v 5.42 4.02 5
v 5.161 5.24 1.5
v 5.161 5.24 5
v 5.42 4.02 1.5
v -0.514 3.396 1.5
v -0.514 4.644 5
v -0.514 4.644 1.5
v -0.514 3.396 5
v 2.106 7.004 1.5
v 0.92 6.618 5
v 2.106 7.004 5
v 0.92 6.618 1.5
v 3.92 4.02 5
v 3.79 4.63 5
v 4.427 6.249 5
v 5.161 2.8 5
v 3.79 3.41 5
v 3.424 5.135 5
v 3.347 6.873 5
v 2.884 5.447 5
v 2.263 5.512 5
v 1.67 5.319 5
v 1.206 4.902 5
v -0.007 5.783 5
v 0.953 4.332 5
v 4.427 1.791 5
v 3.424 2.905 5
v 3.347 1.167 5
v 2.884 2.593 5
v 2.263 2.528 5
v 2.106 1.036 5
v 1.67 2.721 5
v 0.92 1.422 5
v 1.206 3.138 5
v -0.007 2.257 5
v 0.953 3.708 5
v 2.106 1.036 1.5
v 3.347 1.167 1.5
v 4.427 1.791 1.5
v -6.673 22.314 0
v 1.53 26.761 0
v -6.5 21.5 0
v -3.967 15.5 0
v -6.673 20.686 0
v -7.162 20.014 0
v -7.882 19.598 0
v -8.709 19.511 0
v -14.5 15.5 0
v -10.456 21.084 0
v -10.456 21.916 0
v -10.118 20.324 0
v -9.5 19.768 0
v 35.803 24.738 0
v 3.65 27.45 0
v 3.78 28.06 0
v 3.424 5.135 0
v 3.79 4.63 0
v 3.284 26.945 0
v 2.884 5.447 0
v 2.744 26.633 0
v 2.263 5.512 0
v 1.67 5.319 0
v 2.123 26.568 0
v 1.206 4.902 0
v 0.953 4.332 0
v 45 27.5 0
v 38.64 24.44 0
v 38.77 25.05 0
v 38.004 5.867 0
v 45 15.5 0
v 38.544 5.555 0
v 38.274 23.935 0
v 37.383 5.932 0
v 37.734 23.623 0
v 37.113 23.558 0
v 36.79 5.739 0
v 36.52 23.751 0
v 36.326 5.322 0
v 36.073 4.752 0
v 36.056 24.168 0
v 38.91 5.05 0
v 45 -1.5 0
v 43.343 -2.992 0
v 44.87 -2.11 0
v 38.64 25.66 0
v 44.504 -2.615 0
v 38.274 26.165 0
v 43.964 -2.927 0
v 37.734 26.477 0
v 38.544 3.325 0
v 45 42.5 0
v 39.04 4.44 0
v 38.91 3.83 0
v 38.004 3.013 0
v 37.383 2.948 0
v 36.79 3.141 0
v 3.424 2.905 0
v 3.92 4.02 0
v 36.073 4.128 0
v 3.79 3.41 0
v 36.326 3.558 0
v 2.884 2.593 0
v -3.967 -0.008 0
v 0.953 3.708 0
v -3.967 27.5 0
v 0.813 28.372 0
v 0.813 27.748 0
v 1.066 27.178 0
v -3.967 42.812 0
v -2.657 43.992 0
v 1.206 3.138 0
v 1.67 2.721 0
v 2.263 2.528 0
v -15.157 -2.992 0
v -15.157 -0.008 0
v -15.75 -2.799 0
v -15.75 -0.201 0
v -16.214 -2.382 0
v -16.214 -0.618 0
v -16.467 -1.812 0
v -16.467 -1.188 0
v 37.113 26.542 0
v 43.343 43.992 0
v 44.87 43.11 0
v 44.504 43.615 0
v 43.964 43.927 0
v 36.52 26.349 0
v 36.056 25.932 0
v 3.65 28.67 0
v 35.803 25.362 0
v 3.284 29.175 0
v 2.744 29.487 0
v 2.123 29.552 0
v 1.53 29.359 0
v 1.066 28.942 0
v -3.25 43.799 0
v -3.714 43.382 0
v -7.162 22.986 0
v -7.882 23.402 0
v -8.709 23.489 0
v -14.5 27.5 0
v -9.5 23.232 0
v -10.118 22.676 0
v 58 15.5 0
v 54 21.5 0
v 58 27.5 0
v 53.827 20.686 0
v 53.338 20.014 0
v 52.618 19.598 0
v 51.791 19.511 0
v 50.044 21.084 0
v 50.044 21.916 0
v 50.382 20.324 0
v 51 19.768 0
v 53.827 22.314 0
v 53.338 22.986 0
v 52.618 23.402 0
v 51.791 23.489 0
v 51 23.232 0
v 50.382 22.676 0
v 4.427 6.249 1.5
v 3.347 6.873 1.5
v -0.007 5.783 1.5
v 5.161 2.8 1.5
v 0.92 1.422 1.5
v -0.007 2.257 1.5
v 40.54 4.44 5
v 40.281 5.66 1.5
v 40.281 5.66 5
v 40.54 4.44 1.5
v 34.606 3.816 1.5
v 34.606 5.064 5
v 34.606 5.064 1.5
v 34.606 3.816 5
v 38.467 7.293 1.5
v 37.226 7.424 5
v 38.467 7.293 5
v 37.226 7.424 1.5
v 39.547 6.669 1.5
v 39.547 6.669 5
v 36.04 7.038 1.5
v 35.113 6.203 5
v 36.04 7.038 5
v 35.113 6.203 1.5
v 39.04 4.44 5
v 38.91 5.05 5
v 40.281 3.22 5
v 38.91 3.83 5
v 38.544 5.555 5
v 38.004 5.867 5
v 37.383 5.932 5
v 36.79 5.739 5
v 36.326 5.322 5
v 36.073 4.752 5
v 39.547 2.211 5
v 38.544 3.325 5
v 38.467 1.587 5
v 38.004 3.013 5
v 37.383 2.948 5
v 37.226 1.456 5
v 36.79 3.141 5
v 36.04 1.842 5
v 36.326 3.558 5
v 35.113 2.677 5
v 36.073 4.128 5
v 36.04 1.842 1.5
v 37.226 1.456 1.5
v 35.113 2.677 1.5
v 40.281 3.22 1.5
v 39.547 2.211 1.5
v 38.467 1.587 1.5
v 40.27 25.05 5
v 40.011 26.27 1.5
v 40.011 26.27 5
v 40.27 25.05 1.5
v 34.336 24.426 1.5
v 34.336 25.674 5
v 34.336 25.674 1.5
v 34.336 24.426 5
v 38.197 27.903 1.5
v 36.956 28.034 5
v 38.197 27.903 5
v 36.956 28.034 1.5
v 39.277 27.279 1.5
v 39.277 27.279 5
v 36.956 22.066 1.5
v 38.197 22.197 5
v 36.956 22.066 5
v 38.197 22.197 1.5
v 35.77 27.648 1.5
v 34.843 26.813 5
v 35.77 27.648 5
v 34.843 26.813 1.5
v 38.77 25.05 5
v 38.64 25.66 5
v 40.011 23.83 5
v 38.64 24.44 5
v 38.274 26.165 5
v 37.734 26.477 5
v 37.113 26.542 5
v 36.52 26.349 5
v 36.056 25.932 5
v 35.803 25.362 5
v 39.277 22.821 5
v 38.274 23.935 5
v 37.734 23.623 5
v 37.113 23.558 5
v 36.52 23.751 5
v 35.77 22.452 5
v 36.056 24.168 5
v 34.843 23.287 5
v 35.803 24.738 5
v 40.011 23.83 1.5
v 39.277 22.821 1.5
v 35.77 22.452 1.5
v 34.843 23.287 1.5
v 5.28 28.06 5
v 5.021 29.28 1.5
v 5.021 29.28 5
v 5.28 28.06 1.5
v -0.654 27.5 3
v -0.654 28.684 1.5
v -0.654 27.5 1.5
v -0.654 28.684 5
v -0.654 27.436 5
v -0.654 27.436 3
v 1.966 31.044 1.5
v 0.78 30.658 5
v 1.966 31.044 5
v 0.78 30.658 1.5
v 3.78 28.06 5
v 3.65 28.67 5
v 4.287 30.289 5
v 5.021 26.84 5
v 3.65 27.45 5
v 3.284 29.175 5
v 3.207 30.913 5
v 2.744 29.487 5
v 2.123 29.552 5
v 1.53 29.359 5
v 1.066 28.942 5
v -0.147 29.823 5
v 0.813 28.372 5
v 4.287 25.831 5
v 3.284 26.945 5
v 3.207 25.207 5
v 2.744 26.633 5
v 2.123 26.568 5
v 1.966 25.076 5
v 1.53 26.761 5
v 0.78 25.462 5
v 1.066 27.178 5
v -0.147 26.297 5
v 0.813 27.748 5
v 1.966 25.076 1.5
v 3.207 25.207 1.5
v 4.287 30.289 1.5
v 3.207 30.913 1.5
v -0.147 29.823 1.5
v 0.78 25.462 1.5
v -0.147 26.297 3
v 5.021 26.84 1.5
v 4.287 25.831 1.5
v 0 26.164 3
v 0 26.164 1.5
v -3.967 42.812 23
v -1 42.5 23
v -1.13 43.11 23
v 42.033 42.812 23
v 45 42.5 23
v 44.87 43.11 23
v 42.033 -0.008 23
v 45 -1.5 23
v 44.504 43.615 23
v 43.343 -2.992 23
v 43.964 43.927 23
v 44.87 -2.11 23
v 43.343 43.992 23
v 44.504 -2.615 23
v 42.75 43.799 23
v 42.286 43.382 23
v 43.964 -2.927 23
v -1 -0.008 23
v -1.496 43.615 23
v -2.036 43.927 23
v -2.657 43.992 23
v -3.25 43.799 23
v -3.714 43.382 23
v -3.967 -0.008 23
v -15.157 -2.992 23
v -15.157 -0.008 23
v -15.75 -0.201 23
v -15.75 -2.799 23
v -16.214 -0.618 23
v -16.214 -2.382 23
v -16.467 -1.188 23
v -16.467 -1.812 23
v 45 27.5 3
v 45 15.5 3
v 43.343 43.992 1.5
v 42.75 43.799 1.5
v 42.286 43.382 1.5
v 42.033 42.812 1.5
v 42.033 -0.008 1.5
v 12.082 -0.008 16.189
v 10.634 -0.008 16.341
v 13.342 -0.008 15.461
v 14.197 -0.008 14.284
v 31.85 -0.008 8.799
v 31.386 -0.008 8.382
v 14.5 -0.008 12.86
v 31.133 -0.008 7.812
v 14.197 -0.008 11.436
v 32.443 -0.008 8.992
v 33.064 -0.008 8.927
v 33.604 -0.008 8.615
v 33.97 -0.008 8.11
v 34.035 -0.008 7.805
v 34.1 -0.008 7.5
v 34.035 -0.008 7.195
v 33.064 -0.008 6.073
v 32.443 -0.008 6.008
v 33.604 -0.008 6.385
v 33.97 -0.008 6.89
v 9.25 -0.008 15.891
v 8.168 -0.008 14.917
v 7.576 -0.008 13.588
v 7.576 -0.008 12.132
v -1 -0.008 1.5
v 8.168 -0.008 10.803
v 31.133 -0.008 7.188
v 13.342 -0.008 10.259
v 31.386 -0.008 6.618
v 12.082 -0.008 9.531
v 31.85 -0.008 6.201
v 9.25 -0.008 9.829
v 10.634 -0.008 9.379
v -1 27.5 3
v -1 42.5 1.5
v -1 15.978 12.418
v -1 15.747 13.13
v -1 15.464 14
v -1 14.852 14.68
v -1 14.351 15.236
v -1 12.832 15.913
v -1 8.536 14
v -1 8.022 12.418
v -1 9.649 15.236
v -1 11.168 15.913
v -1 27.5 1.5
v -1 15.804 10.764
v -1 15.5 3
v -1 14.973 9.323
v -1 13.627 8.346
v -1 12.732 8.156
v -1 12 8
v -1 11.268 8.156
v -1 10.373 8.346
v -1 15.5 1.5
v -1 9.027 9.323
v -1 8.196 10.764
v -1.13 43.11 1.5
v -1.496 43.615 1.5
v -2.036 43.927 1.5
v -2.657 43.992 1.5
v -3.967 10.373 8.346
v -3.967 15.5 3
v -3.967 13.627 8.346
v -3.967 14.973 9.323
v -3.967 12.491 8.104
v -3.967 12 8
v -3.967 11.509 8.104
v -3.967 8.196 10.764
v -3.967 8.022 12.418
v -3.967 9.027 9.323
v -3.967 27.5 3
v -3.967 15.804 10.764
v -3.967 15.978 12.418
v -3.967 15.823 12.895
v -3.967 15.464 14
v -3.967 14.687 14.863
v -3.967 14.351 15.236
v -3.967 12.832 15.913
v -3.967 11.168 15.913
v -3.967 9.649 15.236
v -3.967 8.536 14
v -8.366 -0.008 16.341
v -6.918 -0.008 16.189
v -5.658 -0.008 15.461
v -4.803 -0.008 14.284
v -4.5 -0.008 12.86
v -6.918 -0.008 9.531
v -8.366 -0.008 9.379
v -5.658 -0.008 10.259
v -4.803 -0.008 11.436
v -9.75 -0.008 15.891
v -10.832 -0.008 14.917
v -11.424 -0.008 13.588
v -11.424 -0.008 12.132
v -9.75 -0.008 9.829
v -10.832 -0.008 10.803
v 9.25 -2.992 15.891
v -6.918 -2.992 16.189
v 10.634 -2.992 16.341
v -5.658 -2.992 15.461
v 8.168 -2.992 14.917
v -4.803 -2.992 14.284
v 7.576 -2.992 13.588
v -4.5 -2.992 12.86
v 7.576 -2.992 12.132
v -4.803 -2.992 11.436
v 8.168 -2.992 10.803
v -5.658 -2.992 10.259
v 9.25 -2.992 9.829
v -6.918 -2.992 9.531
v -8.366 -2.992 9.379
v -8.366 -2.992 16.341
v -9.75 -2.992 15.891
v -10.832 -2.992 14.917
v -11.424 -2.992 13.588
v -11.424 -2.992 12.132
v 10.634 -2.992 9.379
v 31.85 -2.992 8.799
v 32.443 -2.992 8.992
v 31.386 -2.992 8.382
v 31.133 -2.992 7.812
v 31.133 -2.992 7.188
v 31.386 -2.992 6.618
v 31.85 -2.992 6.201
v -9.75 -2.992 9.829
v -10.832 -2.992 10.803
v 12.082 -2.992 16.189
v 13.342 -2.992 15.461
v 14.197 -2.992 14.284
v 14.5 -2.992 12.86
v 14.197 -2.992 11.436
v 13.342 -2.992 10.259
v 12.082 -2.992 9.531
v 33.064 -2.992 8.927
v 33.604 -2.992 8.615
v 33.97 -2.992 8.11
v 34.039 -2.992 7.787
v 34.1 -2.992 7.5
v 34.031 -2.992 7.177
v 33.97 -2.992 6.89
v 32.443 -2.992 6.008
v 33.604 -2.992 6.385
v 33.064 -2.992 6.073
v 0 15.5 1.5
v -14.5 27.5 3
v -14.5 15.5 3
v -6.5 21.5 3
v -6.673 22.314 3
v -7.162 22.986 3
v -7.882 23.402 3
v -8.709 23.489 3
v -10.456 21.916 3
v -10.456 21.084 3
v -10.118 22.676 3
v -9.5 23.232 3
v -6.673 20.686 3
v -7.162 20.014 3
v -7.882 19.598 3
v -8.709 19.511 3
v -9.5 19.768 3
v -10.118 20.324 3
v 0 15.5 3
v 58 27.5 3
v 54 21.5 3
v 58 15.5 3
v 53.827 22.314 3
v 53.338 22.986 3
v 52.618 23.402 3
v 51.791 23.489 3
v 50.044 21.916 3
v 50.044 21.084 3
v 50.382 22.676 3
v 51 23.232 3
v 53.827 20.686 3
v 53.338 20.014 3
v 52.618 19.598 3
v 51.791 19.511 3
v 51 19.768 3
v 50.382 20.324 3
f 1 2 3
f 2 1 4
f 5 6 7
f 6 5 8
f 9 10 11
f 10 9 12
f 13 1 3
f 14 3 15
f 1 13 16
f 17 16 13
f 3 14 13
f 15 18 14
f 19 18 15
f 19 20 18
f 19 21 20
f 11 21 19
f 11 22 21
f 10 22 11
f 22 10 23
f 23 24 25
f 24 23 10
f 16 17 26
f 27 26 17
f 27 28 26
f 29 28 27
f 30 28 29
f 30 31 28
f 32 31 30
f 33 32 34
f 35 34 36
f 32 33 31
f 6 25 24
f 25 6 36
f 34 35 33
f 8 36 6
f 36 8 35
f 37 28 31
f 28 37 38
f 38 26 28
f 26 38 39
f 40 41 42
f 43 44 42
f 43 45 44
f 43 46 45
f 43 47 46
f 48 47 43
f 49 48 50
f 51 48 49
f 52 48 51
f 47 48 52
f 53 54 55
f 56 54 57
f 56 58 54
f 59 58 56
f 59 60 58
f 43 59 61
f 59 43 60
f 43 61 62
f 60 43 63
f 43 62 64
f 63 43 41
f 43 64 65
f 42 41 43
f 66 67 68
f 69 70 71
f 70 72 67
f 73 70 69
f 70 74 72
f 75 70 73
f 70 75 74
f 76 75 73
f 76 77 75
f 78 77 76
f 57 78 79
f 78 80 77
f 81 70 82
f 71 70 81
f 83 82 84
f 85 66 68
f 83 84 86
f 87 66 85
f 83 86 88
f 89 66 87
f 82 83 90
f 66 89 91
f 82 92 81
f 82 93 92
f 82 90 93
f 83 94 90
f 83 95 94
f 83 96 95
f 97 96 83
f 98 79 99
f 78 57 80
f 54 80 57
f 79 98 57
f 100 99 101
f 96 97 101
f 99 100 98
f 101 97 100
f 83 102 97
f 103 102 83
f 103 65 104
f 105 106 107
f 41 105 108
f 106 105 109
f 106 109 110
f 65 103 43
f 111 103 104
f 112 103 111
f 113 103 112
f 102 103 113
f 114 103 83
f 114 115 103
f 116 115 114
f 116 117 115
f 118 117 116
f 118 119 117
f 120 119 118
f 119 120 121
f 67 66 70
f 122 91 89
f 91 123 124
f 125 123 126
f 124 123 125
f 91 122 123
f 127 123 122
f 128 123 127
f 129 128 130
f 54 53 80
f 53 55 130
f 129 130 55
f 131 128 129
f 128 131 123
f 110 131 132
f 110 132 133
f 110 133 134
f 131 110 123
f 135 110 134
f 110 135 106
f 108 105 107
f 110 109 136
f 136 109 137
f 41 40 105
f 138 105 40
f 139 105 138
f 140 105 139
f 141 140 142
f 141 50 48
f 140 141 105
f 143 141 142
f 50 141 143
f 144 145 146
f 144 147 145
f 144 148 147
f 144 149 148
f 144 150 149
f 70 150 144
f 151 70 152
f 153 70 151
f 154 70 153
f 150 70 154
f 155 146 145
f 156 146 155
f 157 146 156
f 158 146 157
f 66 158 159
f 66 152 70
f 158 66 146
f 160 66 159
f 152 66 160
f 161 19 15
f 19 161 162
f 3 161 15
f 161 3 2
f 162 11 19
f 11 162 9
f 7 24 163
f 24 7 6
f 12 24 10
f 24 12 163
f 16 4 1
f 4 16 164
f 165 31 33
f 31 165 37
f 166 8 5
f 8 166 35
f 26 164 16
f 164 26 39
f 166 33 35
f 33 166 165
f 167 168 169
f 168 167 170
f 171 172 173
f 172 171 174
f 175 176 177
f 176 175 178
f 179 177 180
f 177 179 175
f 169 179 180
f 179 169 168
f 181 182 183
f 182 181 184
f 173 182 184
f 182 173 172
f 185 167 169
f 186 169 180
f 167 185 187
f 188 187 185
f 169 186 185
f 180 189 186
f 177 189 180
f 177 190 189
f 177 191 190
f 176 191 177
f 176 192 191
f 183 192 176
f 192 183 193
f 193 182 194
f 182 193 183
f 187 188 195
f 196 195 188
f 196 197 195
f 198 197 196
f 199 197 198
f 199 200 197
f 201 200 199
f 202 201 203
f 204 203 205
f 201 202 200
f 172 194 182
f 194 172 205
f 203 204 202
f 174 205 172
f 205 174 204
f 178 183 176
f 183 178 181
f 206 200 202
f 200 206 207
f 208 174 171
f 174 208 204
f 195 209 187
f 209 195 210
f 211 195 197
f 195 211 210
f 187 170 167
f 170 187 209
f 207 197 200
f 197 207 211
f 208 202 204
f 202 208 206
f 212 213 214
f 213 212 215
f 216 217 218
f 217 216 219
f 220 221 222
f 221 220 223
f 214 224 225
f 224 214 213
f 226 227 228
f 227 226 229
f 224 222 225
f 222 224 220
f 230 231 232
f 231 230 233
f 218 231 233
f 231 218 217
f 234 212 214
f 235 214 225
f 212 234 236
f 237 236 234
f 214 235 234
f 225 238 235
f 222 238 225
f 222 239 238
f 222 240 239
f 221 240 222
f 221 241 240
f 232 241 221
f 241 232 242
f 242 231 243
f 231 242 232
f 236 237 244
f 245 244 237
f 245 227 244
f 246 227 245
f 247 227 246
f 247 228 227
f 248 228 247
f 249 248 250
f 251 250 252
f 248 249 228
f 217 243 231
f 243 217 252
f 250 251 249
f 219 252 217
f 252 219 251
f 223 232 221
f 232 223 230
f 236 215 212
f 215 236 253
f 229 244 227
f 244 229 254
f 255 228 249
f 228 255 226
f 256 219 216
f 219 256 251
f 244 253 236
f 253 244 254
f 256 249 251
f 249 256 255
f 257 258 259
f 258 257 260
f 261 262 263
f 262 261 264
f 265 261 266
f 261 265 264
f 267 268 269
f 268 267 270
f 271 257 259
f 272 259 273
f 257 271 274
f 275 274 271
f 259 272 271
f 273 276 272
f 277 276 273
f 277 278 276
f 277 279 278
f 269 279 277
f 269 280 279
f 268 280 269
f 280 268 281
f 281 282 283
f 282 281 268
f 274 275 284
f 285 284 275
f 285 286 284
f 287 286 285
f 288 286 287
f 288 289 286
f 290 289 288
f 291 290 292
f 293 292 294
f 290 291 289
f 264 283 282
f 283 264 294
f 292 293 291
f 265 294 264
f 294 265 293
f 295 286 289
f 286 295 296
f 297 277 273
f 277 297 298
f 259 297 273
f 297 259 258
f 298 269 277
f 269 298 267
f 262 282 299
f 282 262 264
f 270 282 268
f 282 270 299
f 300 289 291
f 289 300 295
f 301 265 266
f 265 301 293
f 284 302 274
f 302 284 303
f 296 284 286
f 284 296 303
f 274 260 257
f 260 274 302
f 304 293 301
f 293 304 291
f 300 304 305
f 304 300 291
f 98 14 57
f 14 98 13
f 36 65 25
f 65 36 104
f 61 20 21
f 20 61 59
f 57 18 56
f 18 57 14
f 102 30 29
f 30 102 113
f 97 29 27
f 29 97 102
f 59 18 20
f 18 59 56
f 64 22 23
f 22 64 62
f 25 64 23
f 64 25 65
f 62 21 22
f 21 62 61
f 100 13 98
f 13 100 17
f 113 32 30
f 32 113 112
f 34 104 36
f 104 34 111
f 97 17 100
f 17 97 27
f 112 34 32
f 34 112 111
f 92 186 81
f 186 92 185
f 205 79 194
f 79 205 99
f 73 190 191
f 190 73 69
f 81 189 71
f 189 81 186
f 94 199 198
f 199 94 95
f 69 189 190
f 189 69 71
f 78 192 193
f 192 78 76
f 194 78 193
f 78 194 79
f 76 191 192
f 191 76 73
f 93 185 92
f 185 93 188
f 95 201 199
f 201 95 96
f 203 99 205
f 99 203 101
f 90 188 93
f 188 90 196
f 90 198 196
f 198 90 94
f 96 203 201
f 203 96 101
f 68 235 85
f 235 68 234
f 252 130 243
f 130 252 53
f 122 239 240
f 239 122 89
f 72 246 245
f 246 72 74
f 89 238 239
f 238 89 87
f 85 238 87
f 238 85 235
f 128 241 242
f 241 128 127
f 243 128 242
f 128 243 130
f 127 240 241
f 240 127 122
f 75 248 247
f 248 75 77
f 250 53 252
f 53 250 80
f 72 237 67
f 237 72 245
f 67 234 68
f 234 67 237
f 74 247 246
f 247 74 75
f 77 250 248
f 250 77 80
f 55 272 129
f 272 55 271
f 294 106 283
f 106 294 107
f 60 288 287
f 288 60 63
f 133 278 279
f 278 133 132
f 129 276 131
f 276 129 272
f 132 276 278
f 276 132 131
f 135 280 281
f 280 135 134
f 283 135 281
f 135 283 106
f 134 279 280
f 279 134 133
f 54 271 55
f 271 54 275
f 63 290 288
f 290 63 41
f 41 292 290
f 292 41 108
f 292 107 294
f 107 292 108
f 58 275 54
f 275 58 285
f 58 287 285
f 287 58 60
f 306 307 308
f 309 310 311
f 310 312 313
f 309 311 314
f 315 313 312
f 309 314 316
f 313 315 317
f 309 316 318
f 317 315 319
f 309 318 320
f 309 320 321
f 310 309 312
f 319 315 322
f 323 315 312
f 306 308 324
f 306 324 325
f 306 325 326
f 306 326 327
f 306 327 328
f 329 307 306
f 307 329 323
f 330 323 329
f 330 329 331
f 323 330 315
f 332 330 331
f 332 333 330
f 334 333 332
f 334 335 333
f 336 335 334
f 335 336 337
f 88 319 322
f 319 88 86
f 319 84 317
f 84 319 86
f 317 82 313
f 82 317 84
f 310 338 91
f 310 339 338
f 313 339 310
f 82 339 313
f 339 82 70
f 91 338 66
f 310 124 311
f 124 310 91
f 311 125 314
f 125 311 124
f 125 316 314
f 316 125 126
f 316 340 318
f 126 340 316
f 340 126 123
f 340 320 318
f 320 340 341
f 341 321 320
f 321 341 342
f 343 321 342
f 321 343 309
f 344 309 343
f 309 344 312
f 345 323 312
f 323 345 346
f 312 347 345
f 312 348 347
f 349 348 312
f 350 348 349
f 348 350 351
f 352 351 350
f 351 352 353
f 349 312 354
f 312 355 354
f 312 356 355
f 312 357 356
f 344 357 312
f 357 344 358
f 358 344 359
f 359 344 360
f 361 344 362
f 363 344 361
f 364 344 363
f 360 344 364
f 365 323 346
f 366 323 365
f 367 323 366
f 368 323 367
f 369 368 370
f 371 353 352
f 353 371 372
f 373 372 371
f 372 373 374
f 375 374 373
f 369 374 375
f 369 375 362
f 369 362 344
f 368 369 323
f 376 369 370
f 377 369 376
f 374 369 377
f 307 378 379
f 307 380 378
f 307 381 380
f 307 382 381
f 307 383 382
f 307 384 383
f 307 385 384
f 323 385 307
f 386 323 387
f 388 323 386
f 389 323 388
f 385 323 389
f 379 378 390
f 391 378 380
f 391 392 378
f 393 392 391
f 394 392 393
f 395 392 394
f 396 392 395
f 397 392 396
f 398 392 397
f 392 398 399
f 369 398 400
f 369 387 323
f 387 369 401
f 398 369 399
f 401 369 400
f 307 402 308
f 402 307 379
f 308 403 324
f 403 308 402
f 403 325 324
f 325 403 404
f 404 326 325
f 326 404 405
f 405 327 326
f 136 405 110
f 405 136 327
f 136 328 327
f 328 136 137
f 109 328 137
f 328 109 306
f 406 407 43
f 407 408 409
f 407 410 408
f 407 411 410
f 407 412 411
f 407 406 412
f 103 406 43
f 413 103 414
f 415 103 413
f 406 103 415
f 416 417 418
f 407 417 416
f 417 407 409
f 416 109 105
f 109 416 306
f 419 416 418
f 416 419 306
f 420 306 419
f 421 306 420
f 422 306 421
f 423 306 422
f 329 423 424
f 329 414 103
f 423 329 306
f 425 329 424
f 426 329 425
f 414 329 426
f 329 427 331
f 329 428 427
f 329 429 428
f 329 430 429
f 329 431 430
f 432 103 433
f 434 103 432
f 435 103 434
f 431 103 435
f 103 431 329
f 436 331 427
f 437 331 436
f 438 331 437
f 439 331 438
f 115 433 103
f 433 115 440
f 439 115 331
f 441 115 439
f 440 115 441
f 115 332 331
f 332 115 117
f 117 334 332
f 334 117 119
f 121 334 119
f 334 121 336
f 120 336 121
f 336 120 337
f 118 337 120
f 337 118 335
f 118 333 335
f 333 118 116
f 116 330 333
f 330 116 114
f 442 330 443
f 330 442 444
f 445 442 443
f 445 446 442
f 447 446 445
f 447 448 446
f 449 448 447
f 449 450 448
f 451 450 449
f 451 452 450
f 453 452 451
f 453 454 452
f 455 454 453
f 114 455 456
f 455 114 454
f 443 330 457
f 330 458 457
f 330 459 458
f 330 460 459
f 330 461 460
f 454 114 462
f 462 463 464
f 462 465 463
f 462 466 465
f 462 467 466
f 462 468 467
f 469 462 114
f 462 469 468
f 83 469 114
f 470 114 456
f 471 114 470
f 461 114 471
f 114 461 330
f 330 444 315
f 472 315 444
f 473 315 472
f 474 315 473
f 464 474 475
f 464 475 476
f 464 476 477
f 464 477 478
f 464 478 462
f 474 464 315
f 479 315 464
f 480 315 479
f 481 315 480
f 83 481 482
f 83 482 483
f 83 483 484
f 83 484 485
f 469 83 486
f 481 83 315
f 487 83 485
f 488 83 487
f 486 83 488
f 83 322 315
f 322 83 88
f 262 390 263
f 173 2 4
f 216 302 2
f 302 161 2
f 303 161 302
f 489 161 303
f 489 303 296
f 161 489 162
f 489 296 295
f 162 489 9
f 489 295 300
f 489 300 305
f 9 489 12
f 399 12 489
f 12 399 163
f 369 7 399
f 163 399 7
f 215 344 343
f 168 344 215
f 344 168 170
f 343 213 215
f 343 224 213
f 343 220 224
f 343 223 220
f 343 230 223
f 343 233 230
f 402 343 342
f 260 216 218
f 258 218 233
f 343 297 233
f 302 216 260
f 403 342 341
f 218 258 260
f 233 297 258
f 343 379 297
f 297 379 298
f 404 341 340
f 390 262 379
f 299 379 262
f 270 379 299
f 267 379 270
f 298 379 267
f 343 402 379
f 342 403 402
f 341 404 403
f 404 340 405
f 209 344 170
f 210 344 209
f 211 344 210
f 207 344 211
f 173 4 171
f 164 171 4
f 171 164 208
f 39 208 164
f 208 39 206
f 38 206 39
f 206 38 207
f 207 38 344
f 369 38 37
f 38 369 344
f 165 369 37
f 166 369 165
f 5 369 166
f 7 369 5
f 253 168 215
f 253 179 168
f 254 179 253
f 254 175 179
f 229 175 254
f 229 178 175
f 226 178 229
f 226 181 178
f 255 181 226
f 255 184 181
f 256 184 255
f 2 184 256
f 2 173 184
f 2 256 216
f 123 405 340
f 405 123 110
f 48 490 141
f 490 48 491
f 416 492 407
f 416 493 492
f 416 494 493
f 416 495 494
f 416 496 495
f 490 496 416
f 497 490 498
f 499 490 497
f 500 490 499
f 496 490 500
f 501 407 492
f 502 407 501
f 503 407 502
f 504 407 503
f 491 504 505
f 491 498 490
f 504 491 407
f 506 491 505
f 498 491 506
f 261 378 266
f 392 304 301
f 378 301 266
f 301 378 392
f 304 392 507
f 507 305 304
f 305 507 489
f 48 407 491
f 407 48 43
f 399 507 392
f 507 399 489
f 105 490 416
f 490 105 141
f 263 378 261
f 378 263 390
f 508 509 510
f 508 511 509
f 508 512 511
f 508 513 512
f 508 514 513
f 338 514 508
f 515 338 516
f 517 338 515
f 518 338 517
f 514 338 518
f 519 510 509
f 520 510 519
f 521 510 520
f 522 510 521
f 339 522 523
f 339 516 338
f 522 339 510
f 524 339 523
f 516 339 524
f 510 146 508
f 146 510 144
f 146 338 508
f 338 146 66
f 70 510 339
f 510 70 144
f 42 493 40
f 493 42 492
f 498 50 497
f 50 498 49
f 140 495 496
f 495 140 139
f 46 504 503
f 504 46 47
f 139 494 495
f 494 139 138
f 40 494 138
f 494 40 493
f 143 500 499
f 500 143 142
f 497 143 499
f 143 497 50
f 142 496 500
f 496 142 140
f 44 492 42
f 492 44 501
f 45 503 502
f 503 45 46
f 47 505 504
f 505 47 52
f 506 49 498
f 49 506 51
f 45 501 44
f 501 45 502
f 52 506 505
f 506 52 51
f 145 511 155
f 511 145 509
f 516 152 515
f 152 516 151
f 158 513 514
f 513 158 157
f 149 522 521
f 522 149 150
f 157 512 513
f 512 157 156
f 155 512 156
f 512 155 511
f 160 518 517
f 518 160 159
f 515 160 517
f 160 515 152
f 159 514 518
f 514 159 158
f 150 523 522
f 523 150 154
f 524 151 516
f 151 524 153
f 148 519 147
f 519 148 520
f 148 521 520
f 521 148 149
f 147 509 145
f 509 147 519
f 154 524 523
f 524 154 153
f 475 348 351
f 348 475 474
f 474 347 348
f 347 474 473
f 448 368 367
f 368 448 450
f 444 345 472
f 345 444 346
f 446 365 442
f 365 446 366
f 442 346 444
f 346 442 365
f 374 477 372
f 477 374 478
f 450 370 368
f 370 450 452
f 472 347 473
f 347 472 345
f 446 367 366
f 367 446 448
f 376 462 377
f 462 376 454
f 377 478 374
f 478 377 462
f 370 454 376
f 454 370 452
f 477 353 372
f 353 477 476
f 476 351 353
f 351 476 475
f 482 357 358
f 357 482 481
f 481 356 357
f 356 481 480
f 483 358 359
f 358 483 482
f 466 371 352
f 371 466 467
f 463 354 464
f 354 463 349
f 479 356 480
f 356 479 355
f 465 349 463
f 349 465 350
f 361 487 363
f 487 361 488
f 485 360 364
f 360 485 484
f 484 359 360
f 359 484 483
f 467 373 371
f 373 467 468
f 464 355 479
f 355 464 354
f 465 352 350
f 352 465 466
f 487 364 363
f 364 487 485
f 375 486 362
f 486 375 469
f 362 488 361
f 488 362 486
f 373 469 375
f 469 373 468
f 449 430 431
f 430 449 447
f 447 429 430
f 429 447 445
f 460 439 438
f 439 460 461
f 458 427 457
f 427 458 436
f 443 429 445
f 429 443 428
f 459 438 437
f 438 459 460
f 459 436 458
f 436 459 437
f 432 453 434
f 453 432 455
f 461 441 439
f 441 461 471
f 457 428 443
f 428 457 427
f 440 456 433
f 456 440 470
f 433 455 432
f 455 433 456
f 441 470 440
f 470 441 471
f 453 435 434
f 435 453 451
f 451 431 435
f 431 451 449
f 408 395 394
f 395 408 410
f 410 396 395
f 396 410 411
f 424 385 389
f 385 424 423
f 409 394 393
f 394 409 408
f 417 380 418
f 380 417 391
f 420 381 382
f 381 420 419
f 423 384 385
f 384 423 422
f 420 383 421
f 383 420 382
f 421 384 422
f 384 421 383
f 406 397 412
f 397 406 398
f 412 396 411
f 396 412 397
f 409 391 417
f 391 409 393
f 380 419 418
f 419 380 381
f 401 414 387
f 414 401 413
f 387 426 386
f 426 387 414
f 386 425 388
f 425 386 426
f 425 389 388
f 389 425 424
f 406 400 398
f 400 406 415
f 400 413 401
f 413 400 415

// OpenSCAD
$fn=15;
r = 3/2;
hd = 25.5/16;
ec = 18 + r+r;
z = [  [0.92,2.52],[36.04,2.94],[35.77,23.55],[0.78,26.56] ];
echo(h);
 h= [ for ( j = z) j+[r,r]  ];
echo("z ",z);
 ht = 23;
 brd =41;
 g=1; //gap
 overhang=15;
 bot=[[-overhang,-r],[brd+r+g,-r]];
 echo(bot);
 side1 = [[-r-g,-r],[-r-g,brd+r]];
 side2 = [[brd+g+r,-r],[brd+g+r,brd+r]];
 screw = [12+r+g,12,r+r];
 screw1 =[-screw[0],(brd-10)/2,0];
 screw2 =[brd+g+r,(brd-10)/2,0];
 board = [brd,brd];
 
 
 vc =[11,0,6.86+6];
led = [32.6,0,4.5+r+r];
 
module dohull(x){
     hull(){
         union(){
             for (i=x) 
                translate(i)circle(r=r);
         }
    } 
}
 
 module walls(){
     linear_extrude( ht){
     dohull(bot);
     dohull(side1);
     dohull(side2);
     }
     
     linear_extrude(r){
        dohull([side1[0],side1[1],side2[0],side2[1]]);
     }
    translate(screw1)cube(screw);
    translate(screw2)cube(screw);
    
     translate([0,0,2.5])
     for (i= h) 
         translate(i)cylinder(r=r+r,h=5,center=true);

 }
 
 difference(){
    walls();
    for (i=h)
        translate(i) cylinder(r=1.5,h=100,center=true);
    translate(screw1+[6,6]) cylinder(r=2,h=100,center=true);
    translate(screw2+[6+g+r,6]) cylinder(r=2,h=100,center=true);
    
    translate(vc)rotate([90,0,0]) cylinder(r = 7/2,h = 100, center=true);
    translate(led)rotate([90,0,0]) cylinder(r = 3/2,h = 100, center=true);
    translate([-8,0,vc[2]])rotate([90,0,0]) cylinder(r = 7/2,h = 100, center=true);
    translate([0,12,12])rotate([0,90,0]) cylinder(r=4,h=20,center=true);
    
 }
